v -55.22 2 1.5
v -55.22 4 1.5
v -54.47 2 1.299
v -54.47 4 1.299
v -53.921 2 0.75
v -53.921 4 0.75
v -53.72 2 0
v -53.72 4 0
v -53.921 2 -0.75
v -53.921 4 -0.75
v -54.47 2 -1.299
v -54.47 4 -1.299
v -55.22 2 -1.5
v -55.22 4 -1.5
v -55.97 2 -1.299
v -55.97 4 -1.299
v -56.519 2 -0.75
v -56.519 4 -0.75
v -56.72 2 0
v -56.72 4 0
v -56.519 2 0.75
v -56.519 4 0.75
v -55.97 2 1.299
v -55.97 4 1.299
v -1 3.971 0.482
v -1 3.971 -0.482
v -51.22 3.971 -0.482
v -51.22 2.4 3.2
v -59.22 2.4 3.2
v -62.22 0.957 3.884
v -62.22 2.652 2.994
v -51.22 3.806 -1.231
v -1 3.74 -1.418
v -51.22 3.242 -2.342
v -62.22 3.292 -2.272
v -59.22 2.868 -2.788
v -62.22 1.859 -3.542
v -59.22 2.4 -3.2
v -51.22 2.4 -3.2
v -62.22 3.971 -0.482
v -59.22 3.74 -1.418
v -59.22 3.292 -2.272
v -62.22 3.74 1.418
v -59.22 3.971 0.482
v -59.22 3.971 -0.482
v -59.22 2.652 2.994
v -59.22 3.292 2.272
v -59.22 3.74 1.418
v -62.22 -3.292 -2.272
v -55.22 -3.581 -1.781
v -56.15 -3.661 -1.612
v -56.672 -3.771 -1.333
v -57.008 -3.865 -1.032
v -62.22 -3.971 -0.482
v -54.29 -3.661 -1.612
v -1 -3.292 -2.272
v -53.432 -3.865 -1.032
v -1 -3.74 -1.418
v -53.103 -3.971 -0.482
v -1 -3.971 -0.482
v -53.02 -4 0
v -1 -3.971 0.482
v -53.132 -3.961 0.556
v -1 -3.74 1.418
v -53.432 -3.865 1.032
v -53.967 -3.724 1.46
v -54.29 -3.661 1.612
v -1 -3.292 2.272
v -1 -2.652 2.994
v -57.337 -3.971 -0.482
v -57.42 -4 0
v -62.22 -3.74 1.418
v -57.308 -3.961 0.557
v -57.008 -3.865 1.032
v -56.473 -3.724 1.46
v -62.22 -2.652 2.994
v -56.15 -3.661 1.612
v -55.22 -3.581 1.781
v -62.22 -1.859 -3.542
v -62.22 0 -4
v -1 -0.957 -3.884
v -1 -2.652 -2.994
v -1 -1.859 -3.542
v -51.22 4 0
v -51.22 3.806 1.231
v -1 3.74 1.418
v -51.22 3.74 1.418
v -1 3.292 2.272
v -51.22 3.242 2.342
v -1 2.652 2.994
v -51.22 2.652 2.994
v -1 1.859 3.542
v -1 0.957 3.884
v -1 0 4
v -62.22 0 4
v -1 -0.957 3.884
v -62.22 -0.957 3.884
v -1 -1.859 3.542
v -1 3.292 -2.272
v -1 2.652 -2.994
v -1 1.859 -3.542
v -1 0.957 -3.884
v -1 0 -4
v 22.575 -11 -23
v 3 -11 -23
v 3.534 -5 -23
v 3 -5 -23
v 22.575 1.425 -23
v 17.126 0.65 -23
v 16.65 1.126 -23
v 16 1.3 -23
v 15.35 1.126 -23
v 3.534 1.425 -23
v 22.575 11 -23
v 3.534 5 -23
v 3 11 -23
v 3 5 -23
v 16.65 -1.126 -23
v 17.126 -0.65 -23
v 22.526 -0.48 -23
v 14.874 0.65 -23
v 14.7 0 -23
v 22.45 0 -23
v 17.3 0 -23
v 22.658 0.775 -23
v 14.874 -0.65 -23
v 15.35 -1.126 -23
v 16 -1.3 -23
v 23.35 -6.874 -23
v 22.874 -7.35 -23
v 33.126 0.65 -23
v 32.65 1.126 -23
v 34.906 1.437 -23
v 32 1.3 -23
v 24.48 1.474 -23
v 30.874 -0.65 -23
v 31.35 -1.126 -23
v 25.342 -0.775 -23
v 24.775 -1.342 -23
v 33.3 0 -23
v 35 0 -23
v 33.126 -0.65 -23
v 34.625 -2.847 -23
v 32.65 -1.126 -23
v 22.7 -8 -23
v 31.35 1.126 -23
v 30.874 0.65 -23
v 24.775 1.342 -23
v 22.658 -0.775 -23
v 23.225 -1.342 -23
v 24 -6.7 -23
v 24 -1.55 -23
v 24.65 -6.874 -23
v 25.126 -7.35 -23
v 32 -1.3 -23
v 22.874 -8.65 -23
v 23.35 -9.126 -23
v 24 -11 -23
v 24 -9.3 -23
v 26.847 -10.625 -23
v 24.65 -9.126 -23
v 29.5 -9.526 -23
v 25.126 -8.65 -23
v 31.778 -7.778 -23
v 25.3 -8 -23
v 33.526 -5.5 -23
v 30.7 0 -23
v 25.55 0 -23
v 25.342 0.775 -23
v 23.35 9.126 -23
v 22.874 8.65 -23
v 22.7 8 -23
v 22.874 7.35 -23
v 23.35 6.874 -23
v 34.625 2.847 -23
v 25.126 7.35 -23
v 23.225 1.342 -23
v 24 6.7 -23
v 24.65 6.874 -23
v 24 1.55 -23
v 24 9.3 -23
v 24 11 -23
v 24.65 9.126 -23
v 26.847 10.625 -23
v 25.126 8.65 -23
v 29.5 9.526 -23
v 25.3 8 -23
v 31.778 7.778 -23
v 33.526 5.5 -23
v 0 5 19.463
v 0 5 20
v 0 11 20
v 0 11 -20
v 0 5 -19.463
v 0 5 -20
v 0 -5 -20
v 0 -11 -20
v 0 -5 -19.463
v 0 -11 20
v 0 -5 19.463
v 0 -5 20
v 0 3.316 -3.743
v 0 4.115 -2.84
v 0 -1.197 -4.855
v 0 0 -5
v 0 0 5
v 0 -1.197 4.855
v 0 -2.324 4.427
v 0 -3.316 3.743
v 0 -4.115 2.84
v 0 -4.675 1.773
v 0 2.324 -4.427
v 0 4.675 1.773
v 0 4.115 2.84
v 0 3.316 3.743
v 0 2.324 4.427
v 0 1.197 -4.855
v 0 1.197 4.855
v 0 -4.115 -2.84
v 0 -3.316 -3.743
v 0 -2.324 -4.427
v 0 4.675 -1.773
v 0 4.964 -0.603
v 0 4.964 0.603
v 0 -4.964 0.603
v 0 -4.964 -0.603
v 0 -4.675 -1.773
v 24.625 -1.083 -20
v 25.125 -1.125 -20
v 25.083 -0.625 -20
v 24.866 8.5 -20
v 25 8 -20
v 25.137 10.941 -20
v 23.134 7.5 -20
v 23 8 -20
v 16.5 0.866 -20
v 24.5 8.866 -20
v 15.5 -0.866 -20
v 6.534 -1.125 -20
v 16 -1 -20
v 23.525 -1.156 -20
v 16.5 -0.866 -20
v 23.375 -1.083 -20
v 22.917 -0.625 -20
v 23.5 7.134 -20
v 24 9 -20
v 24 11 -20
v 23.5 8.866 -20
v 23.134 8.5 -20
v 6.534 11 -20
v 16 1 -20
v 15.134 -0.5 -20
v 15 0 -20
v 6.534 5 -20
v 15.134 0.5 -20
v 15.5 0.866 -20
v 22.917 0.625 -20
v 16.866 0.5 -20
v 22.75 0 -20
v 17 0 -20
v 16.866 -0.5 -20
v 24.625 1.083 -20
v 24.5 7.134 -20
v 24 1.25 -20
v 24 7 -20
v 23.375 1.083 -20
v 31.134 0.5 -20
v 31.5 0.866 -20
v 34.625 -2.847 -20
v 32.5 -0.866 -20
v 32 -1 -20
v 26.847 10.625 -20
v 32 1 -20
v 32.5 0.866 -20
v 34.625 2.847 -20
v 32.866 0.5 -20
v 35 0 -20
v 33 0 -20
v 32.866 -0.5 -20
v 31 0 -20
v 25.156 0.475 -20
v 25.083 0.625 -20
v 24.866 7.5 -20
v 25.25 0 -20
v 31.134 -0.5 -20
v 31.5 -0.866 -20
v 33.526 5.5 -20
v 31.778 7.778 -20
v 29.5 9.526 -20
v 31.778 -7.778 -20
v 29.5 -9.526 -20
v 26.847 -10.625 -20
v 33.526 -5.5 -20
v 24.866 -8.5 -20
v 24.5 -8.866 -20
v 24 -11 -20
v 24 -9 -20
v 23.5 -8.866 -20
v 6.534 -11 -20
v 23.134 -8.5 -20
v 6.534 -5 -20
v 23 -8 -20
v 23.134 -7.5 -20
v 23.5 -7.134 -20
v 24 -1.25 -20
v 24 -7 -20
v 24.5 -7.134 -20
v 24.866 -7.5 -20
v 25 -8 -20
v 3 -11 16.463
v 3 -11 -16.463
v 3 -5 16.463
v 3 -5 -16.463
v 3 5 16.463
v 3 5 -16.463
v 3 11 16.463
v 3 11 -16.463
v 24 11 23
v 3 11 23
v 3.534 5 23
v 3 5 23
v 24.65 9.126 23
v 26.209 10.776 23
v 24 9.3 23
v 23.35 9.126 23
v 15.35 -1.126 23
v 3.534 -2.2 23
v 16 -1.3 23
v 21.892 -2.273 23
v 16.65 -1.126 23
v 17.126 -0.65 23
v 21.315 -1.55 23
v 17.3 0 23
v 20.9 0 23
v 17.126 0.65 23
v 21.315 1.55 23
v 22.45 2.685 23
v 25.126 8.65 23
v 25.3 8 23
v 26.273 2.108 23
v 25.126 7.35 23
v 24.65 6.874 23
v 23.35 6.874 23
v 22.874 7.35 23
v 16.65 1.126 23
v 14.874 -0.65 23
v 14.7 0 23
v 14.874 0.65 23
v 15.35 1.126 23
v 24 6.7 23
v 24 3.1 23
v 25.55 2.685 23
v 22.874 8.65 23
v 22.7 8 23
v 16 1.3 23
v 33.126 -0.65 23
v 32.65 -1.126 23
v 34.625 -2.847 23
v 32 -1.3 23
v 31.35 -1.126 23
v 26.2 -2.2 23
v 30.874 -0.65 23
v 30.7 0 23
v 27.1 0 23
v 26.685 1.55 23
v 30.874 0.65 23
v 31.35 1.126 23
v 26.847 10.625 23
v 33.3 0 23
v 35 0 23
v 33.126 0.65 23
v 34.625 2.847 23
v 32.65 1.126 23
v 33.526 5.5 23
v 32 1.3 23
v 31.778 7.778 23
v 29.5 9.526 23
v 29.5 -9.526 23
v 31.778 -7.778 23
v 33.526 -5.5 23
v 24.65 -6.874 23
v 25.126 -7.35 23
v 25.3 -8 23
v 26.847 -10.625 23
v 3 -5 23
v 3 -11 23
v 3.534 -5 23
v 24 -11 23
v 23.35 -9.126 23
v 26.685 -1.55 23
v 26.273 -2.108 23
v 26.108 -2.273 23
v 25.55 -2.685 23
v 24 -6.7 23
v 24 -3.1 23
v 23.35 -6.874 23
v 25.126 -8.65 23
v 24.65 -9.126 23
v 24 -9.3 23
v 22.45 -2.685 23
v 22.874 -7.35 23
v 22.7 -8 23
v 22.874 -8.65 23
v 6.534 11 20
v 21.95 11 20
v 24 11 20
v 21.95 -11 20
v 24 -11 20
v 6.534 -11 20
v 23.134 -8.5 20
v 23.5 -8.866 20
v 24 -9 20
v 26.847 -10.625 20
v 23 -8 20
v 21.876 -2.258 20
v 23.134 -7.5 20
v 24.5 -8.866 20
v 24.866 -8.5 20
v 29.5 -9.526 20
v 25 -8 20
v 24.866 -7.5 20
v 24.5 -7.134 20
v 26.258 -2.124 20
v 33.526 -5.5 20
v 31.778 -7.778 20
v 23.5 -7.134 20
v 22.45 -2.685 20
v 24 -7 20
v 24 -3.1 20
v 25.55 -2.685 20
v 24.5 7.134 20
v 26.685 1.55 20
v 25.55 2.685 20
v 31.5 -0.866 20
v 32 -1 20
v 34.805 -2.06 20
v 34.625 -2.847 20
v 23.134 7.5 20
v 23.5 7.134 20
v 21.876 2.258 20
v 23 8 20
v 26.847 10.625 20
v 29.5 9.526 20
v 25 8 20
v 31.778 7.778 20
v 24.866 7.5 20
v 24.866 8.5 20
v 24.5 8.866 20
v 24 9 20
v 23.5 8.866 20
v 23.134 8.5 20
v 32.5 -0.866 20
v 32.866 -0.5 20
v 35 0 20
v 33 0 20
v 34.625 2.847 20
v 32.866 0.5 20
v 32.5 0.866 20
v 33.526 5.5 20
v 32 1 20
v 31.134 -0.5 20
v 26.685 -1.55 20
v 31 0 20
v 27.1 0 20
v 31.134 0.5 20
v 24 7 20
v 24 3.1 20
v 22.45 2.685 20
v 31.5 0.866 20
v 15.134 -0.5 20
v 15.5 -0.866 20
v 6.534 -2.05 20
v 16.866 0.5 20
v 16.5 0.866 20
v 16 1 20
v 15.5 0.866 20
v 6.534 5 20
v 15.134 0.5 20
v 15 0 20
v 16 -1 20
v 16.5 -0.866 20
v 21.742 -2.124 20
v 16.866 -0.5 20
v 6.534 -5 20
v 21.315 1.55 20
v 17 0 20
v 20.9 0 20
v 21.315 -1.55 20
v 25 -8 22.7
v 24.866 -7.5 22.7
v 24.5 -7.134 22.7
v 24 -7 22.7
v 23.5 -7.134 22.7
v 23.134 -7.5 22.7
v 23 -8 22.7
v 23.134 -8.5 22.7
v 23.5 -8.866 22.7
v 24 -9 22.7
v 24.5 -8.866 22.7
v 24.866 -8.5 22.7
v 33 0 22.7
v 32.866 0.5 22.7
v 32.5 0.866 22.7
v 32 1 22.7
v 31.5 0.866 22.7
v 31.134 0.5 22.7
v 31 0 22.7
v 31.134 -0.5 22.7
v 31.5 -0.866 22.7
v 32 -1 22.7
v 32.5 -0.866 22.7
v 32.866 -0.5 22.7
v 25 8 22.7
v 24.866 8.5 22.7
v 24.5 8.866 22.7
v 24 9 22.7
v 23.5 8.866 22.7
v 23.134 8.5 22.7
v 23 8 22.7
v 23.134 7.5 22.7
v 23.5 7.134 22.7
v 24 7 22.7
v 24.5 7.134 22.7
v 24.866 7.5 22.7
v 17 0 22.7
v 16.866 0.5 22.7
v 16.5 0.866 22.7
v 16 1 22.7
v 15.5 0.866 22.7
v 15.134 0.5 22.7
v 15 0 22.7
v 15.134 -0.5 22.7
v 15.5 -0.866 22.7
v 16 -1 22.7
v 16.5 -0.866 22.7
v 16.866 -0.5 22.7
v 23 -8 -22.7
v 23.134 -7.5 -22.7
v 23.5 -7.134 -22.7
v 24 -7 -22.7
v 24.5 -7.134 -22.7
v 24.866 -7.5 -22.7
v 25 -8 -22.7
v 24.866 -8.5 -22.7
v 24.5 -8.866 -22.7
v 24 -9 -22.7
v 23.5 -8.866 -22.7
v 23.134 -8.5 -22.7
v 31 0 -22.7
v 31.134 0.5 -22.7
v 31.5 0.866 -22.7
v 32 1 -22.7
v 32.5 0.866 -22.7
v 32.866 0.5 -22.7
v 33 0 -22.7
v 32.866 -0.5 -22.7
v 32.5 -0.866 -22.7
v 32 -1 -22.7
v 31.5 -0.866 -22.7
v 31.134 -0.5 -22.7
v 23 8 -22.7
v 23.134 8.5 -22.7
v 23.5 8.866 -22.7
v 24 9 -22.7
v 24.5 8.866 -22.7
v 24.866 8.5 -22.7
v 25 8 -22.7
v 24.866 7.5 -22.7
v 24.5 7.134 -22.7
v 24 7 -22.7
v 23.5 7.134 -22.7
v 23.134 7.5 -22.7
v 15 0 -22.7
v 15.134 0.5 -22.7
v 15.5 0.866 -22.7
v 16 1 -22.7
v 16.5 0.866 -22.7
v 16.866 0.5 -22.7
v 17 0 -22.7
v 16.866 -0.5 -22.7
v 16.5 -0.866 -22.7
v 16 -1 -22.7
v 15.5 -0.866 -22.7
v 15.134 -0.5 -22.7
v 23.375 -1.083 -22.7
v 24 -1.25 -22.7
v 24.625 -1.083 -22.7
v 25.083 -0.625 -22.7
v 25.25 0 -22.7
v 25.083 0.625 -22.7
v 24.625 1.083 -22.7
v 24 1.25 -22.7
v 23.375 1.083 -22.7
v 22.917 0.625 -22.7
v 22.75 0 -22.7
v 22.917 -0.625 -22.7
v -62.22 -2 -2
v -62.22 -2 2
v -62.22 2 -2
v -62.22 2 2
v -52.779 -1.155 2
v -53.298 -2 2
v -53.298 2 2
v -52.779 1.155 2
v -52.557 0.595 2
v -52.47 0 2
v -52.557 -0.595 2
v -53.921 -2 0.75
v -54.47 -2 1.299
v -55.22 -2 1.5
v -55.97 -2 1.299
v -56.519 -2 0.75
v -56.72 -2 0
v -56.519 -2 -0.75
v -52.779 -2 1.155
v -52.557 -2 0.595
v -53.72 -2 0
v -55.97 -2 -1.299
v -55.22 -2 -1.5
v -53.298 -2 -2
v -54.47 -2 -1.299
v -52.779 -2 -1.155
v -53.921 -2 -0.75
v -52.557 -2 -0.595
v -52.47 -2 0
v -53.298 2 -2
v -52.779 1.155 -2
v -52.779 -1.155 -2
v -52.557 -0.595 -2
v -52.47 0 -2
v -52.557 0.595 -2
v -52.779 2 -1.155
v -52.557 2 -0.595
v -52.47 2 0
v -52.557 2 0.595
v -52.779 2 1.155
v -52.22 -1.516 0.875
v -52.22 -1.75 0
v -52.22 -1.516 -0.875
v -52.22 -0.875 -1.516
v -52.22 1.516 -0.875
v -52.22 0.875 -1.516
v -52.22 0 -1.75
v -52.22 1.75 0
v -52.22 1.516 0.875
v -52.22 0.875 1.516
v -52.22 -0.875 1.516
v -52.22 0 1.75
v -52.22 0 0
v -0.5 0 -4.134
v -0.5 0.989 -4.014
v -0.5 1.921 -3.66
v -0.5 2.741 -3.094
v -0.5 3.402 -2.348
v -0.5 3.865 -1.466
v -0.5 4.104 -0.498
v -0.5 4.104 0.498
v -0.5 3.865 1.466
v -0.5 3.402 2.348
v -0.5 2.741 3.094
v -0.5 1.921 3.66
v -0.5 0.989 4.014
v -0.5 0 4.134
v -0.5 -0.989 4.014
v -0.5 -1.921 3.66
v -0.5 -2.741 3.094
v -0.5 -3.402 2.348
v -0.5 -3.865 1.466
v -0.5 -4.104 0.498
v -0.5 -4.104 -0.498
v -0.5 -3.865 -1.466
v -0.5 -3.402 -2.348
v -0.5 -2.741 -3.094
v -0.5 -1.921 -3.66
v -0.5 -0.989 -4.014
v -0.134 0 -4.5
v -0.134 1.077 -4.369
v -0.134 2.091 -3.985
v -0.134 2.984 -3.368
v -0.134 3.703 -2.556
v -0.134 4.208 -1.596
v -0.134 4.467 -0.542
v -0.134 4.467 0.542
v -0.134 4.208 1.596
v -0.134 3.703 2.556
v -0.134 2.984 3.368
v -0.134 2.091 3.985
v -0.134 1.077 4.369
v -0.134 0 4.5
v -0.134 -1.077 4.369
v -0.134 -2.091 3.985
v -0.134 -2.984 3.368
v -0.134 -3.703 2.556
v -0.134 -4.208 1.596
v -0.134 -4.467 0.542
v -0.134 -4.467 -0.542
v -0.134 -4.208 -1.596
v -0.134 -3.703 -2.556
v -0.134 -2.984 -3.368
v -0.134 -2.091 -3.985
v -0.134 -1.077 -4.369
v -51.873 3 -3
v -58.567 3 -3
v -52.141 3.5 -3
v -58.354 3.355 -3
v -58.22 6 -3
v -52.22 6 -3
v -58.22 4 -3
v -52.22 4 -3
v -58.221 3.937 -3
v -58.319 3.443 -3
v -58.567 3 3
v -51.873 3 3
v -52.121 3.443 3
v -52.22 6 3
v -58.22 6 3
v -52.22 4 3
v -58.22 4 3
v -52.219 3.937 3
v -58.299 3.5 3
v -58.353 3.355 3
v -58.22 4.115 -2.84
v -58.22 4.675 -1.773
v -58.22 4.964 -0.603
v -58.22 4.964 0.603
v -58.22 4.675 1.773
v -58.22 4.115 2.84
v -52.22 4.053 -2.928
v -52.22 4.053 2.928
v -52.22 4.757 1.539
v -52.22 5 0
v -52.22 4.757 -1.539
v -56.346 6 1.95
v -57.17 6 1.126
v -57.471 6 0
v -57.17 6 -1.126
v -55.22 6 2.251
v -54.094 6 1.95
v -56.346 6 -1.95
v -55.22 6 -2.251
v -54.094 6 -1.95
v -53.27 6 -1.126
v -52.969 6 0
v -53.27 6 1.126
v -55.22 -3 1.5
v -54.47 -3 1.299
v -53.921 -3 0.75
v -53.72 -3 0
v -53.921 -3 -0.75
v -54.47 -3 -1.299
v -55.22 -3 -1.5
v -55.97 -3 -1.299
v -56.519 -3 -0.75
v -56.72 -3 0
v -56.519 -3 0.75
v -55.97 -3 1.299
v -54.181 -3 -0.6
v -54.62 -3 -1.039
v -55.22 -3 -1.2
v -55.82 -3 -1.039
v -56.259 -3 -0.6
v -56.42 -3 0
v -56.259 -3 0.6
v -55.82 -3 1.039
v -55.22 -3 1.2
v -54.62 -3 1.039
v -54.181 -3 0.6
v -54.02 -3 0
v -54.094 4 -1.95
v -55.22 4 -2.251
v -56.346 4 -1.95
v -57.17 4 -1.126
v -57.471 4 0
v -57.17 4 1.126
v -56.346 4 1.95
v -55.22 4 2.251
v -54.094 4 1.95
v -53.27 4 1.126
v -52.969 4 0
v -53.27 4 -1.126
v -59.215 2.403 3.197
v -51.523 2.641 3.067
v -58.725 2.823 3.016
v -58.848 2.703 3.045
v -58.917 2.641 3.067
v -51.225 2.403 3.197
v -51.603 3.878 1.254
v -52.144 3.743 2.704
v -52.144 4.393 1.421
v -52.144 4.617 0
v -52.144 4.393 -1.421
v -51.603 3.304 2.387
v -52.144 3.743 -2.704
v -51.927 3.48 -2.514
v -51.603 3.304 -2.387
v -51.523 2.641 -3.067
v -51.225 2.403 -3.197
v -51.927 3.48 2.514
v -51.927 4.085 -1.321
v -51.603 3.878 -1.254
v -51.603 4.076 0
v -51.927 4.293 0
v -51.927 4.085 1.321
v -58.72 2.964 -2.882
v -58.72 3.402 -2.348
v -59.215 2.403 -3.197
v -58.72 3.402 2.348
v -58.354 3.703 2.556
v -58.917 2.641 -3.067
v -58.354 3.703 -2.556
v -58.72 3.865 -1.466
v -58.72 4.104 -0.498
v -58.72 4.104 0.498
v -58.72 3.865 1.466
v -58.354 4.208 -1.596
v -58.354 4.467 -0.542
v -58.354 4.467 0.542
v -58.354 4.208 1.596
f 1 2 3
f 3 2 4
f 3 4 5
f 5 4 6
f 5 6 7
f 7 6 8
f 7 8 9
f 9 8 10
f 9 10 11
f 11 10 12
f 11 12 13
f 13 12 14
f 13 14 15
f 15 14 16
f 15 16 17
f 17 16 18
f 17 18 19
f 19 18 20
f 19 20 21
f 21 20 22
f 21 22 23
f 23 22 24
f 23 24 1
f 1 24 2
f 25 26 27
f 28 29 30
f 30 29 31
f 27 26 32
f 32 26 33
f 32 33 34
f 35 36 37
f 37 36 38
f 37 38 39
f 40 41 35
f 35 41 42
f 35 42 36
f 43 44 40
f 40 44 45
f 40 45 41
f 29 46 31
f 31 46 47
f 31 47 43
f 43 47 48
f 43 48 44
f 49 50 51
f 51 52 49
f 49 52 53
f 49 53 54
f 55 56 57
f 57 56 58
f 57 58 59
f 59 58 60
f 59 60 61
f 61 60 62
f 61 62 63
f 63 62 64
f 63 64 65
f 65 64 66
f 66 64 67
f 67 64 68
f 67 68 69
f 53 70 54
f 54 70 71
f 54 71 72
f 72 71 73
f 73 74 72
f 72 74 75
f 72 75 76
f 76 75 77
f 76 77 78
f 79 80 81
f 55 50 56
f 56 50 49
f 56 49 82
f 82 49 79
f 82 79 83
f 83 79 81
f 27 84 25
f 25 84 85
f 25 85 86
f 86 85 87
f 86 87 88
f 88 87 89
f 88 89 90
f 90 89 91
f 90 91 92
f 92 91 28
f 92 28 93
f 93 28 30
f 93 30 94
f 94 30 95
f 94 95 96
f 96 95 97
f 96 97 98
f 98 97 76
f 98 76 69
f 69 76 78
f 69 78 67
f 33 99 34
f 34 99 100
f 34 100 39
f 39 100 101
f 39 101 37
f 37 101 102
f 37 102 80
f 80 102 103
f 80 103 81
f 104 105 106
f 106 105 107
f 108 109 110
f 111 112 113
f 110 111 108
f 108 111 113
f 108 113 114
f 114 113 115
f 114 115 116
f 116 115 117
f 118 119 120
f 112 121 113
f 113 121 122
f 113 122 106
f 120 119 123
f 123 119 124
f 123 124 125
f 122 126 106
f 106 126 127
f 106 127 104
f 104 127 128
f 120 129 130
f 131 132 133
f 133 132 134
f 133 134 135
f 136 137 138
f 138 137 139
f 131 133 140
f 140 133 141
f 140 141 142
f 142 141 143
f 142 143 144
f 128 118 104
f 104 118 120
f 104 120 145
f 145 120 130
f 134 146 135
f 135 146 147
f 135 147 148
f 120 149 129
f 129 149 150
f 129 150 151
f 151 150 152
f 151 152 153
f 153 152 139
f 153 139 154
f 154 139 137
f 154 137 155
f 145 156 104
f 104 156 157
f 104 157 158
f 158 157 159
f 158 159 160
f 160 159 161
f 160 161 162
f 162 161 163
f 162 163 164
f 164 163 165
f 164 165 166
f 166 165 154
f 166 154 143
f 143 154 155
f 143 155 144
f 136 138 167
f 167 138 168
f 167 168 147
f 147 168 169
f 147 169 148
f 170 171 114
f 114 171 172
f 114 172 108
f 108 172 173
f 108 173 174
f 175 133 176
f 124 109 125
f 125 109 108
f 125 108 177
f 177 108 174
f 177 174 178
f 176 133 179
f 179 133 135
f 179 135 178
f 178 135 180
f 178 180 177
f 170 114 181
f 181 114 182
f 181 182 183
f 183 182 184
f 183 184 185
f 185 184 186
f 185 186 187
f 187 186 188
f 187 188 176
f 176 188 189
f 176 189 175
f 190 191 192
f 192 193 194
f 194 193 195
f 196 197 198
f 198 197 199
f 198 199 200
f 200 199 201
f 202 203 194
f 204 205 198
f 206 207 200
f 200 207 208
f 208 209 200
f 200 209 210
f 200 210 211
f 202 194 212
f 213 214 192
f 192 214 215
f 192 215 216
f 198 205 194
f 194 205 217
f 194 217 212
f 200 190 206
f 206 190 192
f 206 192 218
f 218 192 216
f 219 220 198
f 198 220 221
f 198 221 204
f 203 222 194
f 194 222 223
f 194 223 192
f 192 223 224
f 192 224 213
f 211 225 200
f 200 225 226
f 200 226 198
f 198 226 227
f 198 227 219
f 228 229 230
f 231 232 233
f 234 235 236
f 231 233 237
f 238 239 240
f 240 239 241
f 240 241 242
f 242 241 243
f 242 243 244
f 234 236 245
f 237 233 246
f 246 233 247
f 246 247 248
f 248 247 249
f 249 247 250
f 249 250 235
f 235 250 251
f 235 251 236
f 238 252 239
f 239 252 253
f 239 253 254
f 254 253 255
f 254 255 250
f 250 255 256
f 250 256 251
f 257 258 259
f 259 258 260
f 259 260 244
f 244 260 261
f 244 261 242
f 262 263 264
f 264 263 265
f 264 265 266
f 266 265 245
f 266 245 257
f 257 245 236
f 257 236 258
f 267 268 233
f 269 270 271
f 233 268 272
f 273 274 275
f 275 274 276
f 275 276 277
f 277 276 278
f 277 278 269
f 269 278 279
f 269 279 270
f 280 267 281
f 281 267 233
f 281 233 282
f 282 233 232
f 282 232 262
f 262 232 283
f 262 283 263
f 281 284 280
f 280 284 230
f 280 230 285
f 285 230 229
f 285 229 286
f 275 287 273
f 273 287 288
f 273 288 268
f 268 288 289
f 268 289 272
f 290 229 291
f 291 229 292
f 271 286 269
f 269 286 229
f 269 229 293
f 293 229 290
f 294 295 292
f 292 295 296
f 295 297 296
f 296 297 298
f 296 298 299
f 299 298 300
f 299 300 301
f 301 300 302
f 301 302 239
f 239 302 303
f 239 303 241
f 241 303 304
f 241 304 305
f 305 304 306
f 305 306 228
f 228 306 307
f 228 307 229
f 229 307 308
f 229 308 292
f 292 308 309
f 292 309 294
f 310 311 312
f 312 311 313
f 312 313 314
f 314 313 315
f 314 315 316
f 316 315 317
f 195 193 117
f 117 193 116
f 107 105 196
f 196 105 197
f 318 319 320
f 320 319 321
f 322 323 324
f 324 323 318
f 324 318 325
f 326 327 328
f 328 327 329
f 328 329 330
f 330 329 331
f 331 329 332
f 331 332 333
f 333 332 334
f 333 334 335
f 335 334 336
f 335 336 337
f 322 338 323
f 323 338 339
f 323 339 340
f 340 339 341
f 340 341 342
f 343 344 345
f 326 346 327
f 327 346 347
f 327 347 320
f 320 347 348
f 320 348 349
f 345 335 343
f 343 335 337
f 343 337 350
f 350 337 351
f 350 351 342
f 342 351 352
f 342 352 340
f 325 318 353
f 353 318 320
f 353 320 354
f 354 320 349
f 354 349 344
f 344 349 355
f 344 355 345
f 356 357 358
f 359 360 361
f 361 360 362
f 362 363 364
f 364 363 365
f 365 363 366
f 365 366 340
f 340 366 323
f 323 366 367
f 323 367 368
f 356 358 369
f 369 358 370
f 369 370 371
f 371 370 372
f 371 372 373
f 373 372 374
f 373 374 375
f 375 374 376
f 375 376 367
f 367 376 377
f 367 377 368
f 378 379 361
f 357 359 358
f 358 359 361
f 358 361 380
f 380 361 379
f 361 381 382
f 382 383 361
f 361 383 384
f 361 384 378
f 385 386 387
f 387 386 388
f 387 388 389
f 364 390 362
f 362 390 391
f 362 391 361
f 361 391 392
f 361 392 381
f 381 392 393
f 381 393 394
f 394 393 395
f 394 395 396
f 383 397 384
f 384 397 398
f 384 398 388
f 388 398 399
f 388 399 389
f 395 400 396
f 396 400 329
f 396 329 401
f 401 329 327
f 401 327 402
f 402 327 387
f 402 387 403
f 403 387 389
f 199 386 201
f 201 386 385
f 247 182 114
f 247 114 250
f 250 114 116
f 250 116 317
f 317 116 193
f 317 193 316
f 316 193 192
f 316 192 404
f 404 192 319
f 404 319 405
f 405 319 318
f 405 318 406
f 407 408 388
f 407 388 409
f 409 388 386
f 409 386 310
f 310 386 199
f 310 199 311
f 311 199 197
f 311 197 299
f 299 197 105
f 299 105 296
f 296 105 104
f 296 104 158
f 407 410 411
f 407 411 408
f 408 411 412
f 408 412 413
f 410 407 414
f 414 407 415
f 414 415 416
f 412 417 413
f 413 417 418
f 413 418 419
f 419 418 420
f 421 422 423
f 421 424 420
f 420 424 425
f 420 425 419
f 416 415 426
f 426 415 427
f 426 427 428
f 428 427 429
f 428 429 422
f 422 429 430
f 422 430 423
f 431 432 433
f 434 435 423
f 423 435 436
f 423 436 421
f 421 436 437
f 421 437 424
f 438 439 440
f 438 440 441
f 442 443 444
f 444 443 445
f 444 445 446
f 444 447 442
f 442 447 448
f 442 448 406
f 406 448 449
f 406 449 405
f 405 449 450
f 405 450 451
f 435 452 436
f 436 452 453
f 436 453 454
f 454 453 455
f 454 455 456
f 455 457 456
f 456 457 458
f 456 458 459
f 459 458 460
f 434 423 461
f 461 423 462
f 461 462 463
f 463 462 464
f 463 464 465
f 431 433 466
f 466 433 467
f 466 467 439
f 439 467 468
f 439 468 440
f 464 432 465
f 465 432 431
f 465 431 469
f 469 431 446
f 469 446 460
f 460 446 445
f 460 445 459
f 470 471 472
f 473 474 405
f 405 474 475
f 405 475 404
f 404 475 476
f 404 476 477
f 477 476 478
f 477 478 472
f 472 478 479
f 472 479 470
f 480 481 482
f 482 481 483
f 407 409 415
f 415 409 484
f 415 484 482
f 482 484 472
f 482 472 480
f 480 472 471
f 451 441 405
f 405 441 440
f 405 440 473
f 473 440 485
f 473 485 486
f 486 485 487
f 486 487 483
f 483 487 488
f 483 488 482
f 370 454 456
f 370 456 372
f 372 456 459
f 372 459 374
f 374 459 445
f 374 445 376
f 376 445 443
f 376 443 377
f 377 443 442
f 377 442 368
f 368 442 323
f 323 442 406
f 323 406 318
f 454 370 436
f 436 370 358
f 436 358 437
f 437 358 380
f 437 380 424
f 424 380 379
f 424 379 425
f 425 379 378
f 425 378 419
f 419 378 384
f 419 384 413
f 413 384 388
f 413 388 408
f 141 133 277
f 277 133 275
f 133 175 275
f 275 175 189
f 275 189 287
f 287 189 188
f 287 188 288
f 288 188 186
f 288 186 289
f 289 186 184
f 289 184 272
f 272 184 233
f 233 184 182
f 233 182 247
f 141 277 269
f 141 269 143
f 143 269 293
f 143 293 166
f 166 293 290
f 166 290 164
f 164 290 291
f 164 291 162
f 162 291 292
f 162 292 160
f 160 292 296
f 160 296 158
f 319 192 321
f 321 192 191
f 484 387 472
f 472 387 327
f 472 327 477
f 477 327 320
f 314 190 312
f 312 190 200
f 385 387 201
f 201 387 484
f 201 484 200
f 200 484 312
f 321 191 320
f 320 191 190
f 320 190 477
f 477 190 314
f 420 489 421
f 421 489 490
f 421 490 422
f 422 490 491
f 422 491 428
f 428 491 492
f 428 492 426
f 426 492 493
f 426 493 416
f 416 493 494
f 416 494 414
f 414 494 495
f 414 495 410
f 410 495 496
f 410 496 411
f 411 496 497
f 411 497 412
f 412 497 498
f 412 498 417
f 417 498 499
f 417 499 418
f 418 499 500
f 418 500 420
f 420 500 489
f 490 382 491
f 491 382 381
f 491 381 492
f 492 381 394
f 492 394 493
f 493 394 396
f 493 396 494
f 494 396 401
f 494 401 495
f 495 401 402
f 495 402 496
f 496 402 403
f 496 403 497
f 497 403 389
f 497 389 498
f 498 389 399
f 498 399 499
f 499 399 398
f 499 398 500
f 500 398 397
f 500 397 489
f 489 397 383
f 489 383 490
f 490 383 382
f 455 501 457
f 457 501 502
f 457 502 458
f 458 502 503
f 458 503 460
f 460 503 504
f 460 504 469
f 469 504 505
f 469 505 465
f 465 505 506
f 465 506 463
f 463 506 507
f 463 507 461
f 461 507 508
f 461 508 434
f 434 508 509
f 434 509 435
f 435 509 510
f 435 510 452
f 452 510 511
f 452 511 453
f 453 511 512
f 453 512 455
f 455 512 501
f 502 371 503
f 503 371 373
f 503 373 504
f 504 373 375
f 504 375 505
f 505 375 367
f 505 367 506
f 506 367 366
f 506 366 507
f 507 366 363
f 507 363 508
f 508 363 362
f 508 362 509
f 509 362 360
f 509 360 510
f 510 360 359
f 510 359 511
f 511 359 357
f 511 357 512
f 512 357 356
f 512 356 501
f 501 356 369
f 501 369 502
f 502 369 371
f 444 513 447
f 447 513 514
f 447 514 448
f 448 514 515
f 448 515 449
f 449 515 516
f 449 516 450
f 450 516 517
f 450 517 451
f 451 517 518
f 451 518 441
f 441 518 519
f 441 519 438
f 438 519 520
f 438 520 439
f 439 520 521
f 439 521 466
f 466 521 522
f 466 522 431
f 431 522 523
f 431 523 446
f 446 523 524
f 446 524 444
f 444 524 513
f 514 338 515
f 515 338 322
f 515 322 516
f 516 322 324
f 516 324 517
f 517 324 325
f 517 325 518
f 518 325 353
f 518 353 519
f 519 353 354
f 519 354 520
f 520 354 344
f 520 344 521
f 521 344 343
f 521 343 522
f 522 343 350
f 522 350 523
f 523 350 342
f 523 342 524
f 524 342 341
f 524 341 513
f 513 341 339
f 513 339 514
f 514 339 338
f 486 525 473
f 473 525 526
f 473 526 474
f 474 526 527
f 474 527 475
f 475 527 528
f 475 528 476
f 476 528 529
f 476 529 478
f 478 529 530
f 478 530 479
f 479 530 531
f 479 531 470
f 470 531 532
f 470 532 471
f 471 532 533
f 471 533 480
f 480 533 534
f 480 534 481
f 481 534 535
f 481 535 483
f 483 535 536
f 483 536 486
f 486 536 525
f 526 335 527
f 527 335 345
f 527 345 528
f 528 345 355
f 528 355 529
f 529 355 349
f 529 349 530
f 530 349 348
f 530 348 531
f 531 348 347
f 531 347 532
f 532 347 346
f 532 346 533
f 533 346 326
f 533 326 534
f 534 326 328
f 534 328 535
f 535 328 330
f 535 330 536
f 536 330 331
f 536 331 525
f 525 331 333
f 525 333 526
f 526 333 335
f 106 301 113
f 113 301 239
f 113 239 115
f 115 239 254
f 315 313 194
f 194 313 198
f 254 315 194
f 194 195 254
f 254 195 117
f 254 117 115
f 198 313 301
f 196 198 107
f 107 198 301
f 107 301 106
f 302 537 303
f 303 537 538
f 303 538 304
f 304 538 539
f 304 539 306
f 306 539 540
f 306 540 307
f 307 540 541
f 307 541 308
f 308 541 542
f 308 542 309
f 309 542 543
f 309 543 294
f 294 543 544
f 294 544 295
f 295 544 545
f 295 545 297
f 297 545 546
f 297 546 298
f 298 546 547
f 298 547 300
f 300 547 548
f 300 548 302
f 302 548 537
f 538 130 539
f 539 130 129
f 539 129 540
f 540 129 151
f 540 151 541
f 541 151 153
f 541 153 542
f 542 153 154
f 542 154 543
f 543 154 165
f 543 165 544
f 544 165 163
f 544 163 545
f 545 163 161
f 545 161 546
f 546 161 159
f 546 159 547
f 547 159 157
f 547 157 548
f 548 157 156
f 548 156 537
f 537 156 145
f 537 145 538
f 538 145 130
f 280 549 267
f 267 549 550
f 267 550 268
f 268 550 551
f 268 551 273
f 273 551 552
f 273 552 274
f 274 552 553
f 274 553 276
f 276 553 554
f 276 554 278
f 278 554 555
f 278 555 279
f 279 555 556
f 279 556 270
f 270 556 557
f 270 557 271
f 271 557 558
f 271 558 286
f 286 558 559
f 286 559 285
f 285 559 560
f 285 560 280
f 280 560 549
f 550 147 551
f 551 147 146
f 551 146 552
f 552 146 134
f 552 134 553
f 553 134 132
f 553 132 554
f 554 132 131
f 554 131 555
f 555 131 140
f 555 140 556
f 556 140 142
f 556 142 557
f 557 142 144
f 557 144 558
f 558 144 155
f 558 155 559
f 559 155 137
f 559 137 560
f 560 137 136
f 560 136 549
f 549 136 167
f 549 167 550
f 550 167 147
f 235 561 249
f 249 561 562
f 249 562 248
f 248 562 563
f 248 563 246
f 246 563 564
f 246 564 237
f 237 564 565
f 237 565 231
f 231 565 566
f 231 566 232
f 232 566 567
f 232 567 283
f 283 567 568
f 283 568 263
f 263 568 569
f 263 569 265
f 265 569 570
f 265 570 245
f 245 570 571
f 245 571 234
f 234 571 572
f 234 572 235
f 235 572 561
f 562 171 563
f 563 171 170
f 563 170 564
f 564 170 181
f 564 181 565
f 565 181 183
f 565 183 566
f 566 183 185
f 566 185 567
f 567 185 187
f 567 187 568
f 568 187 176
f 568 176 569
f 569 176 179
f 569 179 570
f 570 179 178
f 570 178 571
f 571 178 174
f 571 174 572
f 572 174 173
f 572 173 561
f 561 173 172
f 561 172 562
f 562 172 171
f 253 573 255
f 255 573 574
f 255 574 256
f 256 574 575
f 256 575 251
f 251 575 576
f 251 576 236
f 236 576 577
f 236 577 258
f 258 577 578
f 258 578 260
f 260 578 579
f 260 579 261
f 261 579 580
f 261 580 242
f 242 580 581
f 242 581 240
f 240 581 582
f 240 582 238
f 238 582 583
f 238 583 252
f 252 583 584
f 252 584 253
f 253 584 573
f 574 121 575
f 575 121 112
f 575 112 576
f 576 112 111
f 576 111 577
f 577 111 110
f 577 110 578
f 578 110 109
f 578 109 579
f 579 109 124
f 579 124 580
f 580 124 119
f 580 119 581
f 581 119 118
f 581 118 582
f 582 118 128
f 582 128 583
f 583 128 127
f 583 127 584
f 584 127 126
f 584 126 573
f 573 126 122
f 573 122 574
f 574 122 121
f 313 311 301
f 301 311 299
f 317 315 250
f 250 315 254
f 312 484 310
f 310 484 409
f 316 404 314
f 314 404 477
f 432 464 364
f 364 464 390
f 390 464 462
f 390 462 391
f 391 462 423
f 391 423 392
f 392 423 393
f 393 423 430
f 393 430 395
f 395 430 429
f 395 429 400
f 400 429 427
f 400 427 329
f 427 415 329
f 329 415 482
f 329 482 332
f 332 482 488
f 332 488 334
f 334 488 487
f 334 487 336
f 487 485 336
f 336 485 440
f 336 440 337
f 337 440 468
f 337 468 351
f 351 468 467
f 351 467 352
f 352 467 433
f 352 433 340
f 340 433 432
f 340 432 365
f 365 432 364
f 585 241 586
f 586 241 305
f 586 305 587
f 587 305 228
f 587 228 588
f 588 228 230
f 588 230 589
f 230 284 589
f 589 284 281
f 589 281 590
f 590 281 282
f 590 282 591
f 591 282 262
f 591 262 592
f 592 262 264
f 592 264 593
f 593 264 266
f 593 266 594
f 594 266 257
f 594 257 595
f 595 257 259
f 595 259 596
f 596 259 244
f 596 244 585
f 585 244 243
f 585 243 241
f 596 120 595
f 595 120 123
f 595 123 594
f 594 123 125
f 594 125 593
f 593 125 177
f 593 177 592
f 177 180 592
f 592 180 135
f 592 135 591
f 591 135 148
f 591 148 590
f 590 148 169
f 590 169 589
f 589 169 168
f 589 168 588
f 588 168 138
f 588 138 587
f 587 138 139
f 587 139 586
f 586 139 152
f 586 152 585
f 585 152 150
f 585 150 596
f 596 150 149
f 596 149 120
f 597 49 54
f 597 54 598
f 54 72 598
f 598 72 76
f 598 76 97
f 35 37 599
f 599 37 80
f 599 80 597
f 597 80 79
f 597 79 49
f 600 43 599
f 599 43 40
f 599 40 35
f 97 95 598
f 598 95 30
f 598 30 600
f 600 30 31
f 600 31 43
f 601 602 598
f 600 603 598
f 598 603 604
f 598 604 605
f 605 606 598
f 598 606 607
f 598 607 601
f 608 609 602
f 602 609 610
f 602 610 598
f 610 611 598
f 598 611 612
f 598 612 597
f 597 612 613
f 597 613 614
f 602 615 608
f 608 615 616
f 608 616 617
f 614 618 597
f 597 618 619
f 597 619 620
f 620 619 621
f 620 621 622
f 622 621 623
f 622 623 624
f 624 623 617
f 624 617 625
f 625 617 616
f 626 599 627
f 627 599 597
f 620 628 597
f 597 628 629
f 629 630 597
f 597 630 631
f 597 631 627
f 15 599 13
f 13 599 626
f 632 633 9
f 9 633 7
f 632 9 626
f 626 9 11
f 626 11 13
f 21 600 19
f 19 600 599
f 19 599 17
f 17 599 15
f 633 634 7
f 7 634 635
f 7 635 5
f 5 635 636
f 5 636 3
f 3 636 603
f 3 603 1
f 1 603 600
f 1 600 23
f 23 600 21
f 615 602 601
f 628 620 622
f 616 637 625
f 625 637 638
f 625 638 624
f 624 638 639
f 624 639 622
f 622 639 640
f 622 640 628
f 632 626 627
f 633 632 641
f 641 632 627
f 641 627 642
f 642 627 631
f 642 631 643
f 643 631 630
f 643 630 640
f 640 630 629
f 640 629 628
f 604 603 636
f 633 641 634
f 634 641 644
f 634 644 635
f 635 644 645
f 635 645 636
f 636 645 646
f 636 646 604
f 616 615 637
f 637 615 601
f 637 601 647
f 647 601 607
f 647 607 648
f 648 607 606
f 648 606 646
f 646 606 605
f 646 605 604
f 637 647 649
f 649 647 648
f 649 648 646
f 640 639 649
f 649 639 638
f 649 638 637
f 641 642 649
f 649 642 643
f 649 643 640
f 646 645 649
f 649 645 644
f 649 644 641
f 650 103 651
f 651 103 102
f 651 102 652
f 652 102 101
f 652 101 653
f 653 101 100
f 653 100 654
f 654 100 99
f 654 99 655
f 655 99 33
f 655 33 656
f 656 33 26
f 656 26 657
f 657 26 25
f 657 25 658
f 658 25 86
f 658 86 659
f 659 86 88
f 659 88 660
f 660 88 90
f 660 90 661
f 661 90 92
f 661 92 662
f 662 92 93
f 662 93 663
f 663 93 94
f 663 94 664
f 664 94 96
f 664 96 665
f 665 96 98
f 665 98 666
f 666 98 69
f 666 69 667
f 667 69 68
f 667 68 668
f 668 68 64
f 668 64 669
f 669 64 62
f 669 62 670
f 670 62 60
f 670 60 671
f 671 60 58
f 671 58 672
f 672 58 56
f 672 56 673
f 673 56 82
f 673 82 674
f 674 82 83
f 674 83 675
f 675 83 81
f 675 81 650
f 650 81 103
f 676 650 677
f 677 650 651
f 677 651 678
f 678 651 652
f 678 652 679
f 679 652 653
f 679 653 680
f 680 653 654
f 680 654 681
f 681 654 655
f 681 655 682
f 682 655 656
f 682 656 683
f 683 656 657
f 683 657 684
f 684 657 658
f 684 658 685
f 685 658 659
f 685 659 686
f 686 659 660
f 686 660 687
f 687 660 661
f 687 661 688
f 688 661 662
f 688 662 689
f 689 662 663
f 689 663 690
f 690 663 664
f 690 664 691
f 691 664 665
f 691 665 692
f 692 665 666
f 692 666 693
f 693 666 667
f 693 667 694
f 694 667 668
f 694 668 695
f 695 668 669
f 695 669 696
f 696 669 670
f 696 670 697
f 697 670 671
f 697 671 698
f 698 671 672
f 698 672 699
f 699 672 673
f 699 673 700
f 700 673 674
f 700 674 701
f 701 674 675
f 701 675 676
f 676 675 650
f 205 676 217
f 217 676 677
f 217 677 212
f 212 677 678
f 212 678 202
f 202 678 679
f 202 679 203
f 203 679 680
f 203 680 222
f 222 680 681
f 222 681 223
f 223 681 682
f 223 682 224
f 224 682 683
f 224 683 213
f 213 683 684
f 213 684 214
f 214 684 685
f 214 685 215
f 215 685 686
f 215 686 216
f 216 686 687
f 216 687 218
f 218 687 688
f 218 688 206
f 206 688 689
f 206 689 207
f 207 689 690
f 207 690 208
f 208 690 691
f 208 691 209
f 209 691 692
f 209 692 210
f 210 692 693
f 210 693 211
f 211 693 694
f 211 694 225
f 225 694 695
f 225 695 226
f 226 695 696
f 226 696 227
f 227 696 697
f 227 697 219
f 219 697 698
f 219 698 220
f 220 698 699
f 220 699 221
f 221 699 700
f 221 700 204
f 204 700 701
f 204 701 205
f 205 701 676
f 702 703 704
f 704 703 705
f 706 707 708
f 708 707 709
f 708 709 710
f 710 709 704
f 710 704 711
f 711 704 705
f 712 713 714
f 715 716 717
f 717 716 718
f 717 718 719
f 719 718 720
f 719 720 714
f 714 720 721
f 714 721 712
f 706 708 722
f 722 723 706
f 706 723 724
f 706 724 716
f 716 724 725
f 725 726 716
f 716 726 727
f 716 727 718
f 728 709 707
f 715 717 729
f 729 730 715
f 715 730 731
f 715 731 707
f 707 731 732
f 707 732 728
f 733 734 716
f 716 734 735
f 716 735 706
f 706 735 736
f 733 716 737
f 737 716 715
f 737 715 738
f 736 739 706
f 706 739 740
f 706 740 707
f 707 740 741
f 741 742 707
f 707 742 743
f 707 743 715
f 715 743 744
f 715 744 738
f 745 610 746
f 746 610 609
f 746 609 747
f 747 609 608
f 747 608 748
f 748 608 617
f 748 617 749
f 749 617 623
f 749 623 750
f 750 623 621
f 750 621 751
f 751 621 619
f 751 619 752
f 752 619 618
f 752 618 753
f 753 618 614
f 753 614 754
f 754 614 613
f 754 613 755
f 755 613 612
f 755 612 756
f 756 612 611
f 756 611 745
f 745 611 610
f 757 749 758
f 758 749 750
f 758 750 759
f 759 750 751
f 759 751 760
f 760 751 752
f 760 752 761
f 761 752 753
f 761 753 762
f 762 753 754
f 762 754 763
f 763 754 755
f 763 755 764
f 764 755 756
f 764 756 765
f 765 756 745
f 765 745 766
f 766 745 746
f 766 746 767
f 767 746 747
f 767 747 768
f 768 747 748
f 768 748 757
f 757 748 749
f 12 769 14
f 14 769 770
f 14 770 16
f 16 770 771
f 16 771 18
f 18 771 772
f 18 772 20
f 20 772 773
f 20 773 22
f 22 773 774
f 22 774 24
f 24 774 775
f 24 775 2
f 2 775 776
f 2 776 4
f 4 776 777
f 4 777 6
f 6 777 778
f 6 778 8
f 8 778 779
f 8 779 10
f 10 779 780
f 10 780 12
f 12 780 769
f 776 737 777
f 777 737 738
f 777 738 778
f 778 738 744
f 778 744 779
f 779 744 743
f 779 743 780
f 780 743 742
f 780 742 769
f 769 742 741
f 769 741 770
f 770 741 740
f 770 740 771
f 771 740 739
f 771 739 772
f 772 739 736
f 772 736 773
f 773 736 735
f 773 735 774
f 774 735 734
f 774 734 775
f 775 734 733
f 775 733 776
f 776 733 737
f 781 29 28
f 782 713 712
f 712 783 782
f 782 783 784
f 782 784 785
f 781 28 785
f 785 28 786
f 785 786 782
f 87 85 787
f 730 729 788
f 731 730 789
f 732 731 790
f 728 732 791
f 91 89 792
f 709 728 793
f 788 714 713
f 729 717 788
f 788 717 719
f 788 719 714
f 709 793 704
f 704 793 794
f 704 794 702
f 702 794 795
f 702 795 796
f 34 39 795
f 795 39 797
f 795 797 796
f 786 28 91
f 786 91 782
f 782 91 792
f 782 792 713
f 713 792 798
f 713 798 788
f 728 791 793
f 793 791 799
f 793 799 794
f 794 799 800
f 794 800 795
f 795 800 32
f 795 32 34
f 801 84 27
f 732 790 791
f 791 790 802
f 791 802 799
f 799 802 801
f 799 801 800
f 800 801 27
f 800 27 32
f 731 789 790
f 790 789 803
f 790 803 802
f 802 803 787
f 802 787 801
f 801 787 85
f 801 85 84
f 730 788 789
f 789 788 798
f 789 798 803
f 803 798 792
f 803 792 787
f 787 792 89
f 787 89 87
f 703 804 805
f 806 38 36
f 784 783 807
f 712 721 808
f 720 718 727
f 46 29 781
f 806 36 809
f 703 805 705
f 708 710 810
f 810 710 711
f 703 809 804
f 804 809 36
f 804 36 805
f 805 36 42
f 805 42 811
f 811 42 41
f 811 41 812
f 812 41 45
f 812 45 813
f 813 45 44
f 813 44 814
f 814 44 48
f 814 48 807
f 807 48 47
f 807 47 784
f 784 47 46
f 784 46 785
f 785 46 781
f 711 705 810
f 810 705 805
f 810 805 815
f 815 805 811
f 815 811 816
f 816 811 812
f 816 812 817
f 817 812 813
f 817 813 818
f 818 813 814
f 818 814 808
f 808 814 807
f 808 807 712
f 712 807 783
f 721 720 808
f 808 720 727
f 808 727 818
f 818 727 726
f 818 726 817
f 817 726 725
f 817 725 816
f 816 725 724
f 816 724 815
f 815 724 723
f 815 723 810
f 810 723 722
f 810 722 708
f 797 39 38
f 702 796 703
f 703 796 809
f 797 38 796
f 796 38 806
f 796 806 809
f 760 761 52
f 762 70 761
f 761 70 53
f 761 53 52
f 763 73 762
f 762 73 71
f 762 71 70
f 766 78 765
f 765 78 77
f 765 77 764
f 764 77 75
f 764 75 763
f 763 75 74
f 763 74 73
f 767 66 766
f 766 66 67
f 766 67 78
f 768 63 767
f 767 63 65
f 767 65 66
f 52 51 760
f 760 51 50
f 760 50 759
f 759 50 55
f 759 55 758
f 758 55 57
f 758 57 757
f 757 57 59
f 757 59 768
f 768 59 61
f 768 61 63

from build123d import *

# Parameters (mm, degrees)
IZIM1_W                                        = 46
IZIM1_H                                        = 22
Y_KSEKLIK_EKSTR_ZYON1_DEPTH                    = 35
IZIM2_W                                        = 40
IZIM2_H                                        = 22
KES_EKSTR_ZYON1_DEPTH                          = 32
RADYUS1_R                                      = 11
PAH1_SIZE                                      = 3
IZIM3_W                                        = 5
IZIM3_H                                        = 10
KES_EKSTR_ZYON2_DEPTH                          = 20
FEDER5_REACH                                   = 46.833
IZIM8_WALL_W                                   = 96.666047784
IZIM8_WALL_H                                   = 6
AYNALAMA4_COPY_1_REACH                         = 46.833
AYNALAMA4_COPY_1_SKETCH_W                      = 96.666047784
AYNALAMA4_COPY_1_SKETCH_H                      = 6
IZIM10_R                                       = 3.1
KES_EKSTR_ZYON4_DEPTH                          = 59.838762733
IZIM12_R                                       = 3.1
Y_KSEKLIK_EKSTR_ZYON3_DEPTH                    = 3
M3_D_Z_BA_L_MAKINE_VIDAS_IN_HAV_A1_D           = 2.5
M3_D_Z_BA_L_MAKINE_VIDAS_IN_HAV_A1_CSINK_D     = 3.1
M3_D_Z_BA_L_MAKINE_VIDAS_IN_HAV_A1_CSINK_ANGLE = 90
IZIM18_R                                       = 4
Y_KSEKLIK_EKSTR_ZYON4_DEPTH                    = 62.22
IZIM19_W                                       = 4
IZIM19_H                                       = 4
KES_EKSTR_ZYON5_DEPTH                          = 10
RADYUS2_R                                      = 1
Y_KSEKLIK_EKSTR_ZYON5_DEPTH                    = 2
Y_KSEKLIK_EKSTR_ZYON5_DEPTH_BACK               = 2
IZIM21_W                                       = 6
IZIM21_H                                       = 6
IZIM22_R                                       = 1.5
KES_EKSTR_ZYON6_DEPTH                          = 9
IZIM23_R                                       = 2.251355404
KES_EKSTR_ZYON7_DEPTH                          = 2
RADYUS3_R                                      = 1
M2_D_Z_BA_L_MAKINE_VIDAS_IN_HAV_A2_D           = 2
M2_D_Z_BA_L_MAKINE_VIDAS_IN_HAV_A2_DEPTH       = 46
M2_D_Z_BA_L_MAKINE_VIDAS_IN_HAV_A2_CSINK_D     = 4.4
M2_D_Z_BA_L_MAKINE_VIDAS_IN_HAV_A2_CSINK_ANGLE = 90
M2_D_Z_BA_L_MAKINE_VIDAS_IN_HAV_A2_TIP         = 0.600860619


# Read off the part's stored shape, not the designer's step: M2 Düz Başlı Makine Vidası İçin Havşa1
with BuildPart() as part:
    # Çizim1 → Yükseklik-Ekstrüzyon1 (new body)
    with BuildSketch(Plane(origin=(0, 0, 0), x_dir=(0, 0, -1), z_dir=(1, 0, 0))):
        Rectangle(IZIM1_W, IZIM1_H)
    extrude(amount=Y_KSEKLIK_EKSTR_ZYON1_DEPTH)

    # Çizim2 → Kes-Ekstrüzyon1 (cut)
    with BuildSketch(Plane(origin=(35, 0, 0), x_dir=(0, 0, -1), z_dir=(1, 0, 0))):
        Rectangle(IZIM2_W, IZIM2_H)
    extrude(amount=-KES_EKSTR_ZYON1_DEPTH, mode=Mode.SUBTRACT)

    # Radyus1
    radyus1_edges = [part.edges().sort_by_distance(p)[0] for p in [
        (35, -11, 21.5),
        (35, 11, 21.5),
        (35, -11, -21.5),
        (35, 11, -21.5),
    ]]
    fillet(radyus1_edges, radius=RADYUS1_R - 0.0001)  # a hair under: the kernel refuses the full size

    # Pah1
    pah1_edges = [part.edges().sort_by_distance(p)[0] for p in [
        (0, 0, 23),
        (0, 0, -23),
    ]]
    chamfer(pah1_edges, length=PAH1_SIZE)

    # Çizim3 → Kes-Ekstrüzyon2 (cut)
    with BuildSketch(Plane(origin=(-10, 0, 10), x_dir=(0.7071067811865468, 0, 0.7071067811865483), z_dir=(-0.7071067811865483, 0, 0.7071067811865468))):
        with Locations((16.262135624, 0)):
            Rectangle(IZIM3_W, IZIM3_H)
    kes_ekstr_zyon2 = extrude(amount=-KES_EKSTR_ZYON2_DEPTH, mode=Mode.SUBTRACT)

    # M2 Düz Başlı Makine Vidası İçin Havşa1 ou → M2 Düz Başlı Makine Vidası İçin Havşa1 (revolve, cut)
    with BuildSketch(Plane(origin=(24, -8, 0), x_dir=(1, 0, 0), z_dir=(0, -1, 0))):
        Polygon((0, 20), (1, 20), (1, 22.7), (1.3, 23), (0, 23), align=None)
    m2_d_z_ba_l_makine_vidas_in_hav_a1 = revolve(axis=Axis((24, -8, 0), (0, 0, 1)), mode=Mode.SUBTRACT)

    # M2 D_z Ba_l_ Makine Vidas_ _in Hav_a 2 → M2 D_z Ba_l_ Makine Vidas_ _in Hav_a1 2 (revolve, cut)
    with BuildSketch(Plane(origin=(32, 0, 0), x_dir=(1, 0, 0), z_dir=(0, -1, 0))):
        Polygon((0, 20), (1, 20), (1, 22.7), (1.3, 23), (0, 23), align=None)
    m2_d_z_ba_l_makine_vidas_in_hav_a1_2 = revolve(axis=Axis((32, 0, 0), (0, 0, 1)), mode=Mode.SUBTRACT)

    # M2 D_z Ba_l_ Makine Vidas_ _in Hav_a 3 → M2 D_z Ba_l_ Makine Vidas_ _in Hav_a1 3 (revolve, cut)
    with BuildSketch(Plane(origin=(24, 8, 0), x_dir=(1, 0, 0), z_dir=(0, -1, 0))):
        Polygon((0, 20), (1, 20), (1, 22.7), (1.3, 23), (0, 23), align=None)
    m2_d_z_ba_l_makine_vidas_in_hav_a1_3 = revolve(axis=Axis((24, 8, 0), (0, 0, 1)), mode=Mode.SUBTRACT)

    # M2 D_z Ba_l_ Makine Vidas_ _in Hav_a 4 → M2 D_z Ba_l_ Makine Vidas_ _in Hav_a1 4 (revolve, cut)
    with BuildSketch(Plane(origin=(16, 0, 0), x_dir=(1, 0, 0), z_dir=(0, -1, 0))):
        Polygon((0, 20), (1, 20), (1, 22.7), (1.3, 23), (0, 23), align=None)
    m2_d_z_ba_l_makine_vidas_in_hav_a1_4 = revolve(axis=Axis((16, 0, 0), (0, 0, 1)), mode=Mode.SUBTRACT)

    # Aynalama2: Kes-Ekstrüzyon2, M2 Düz Başlı Makine Vidası İçin Havşa1, M2 D_z Ba_l_ Makine Vidas_ _in Hav_a1 2, M2 D_z Ba_l_ Makine Vidas_ _in Hav_a1 3, M2 D_z Ba_l_ Makine Vidas_ _in Hav_a1 4 across plane
    add(kes_ekstr_zyon2.mirror(Plane.XY), mode=Mode.SUBTRACT)
    add(m2_d_z_ba_l_makine_vidas_in_hav_a1.mirror(Plane.XY), mode=Mode.SUBTRACT)
    add(m2_d_z_ba_l_makine_vidas_in_hav_a1_2.mirror(Plane.XY), mode=Mode.SUBTRACT)
    add(m2_d_z_ba_l_makine_vidas_in_hav_a1_3.mirror(Plane.XY), mode=Mode.SUBTRACT)
    add(m2_d_z_ba_l_makine_vidas_in_hav_a1_4.mirror(Plane.XY), mode=Mode.SUBTRACT)

    # Çizim8 wall → Feder5 (add, up to next)
    with BuildSketch(Plane(origin=(4.766833329, -5, -18.231299423), x_dir=(-0.706733233022, 0, 0.707480132118), z_dir=(0.707480132118, 0, 0.706733233022)), mode=Mode.PRIVATE) as feder5_sk1:
        with Locations((0, 3)):
            Rectangle(IZIM8_WALL_W, IZIM8_WALL_H)
    feder5_tool1 = extrude(feder5_sk1.sketch, amount=-FEDER5_REACH, mode=Mode.PRIVATE) - part.part
    feder5 = feder5_tool1.solids().sort_by_distance((4.766833329, -5, -18.231299423))[0]
    add(feder5)

    # Aynalama3: Feder5 across plane
    add(feder5.mirror(Plane.ZX))

    # Aynalama4: Feder5 across plane
    add(feder5.mirror(Plane.XY))

    # Aynalama4 copy 1 sketch → Aynalama4 copy 1 (add, up to next)
    with BuildSketch(Plane(origin=(4.766833329, 5, 18.231299423), x_dir=(-0.706733233022, 0, -0.707480132118), z_dir=(0.707480132118, 0, -0.706733233022)), mode=Mode.PRIVATE) as aynalama4_copy_1_sk1:
        with Locations((0, 3)):
            Rectangle(AYNALAMA4_COPY_1_SKETCH_W, AYNALAMA4_COPY_1_SKETCH_H)
    aynalama4_copy_1_tool1 = extrude(aynalama4_copy_1_sk1.sketch, amount=-AYNALAMA4_COPY_1_REACH, mode=Mode.PRIVATE) - part.part
    add(aynalama4_copy_1_tool1.solids().sort_by_distance((4.766833329, 5, 18.231299423))[0])

    # Çizim10 → Kes-Ekstrüzyon4 (cut, through all)
    with BuildSketch(Plane(origin=(0, 0, -23), x_dir=(-1, 0, 0), z_dir=(0, 0, -1))):
        with Locations(Location((-24, 0, 0), (0, 0, 90))):
            Circle(IZIM10_R)
    extrude(amount=-KES_EKSTR_ZYON4_DEPTH, mode=Mode.SUBTRACT)

    # Çizim12 → Yükseklik-Ekstrüzyon3 (add)
    with BuildSketch(Plane(origin=(0, 0, -23), x_dir=(-1, 0, 0), z_dir=(0, 0, -1))):
        with Locations(Location((-24, 0, 0), (0, 0, 90))):
            Circle(IZIM12_R)
    extrude(amount=-Y_KSEKLIK_EKSTR_ZYON3_DEPTH)

    # M3 Düz Başlı Makine Vidası İçin Havşa1 (through all)
    with Locations(Plane(origin=(24, 0, -23), x_dir=(0, -1, 0), z_dir=(0, 0, -1))):
        with Locations((0, 0)):
            CounterSinkHole(M3_D_Z_BA_L_MAKINE_VIDAS_IN_HAV_A1_D / 2, M3_D_Z_BA_L_MAKINE_VIDAS_IN_HAV_A1_CSINK_D / 2, counter_sink_angle=M3_D_Z_BA_L_MAKINE_VIDAS_IN_HAV_A1_CSINK_ANGLE)

    # Çizim18 → Yükseklik-Ekstrüzyon4 (add)
    with BuildSketch(Plane.ZY):
        with Locations(Location((0, 0, 0), (0, 0, 180))):
            Circle(IZIM18_R)
    extrude(amount=Y_KSEKLIK_EKSTR_ZYON4_DEPTH)

    # Çizim19 → Kes-Ekstrüzyon5 (cut)
    with BuildSketch(Plane.ZY.offset(62.22)):
        Rectangle(IZIM19_W, IZIM19_H)
    extrude(amount=-KES_EKSTR_ZYON5_DEPTH, mode=Mode.SUBTRACT)

    # Çizim20 → Döndür1 (revolve)
    with BuildSketch(Plane.XY, mode=Mode.PRIVATE) as d_nd_r1_sk:
        Polygon((-52.22, -1.75), (-52.22, -3.5), (-53.97, -3.5), align=None)
    revolve(d_nd_r1_sk.sketch.rotate(Axis((-62.22, 0, 0), (1, 0, 0)), 270), axis=Axis((-62.22, 0, 0), (1, 0, 0)))

    # Radyus2
    radyus2_edges = [part.edges().sort_by_distance(p)[0] for p in [
        (0, 0, 4),
    ]]
    fillet(radyus2_edges, radius=RADYUS2_R)

    # Çizim21 → Yükseklik-Ekstrüzyon5 (add, two sides: drawn at the far end of the back side and taken through both)
    with BuildSketch(Plane(origin=(0, 4, 0), x_dir=(1, 0, 0), z_dir=(0, 1, 0)).offset(-Y_KSEKLIK_EKSTR_ZYON5_DEPTH_BACK)):
        with Locations((-55.22, 0)):
            Rectangle(IZIM21_W, IZIM21_H)
    extrude(amount=Y_KSEKLIK_EKSTR_ZYON5_DEPTH + Y_KSEKLIK_EKSTR_ZYON5_DEPTH_BACK)

    # Çizim22 → Kes-Ekstrüzyon6 (cut)
    with BuildSketch(Plane(origin=(0, 6, 0), x_dir=(1, 0, 0), z_dir=(0, 1, 0))):
        with Locations(Location((-55.22, 0, 0), (0, 0, 270))):
            Circle(IZIM22_R)
    extrude(amount=-KES_EKSTR_ZYON6_DEPTH, mode=Mode.SUBTRACT)

    # Çizim23 → Kes-Ekstrüzyon7 (cut)
    with BuildSketch(Plane(origin=(0, 6, 0), x_dir=(1, 0, 0), z_dir=(0, 1, 0))):
        with Locations(Location((-55.22, 0, 0), (0, 0, 270))):
            Circle(IZIM23_R)
    extrude(amount=-KES_EKSTR_ZYON7_DEPTH, mode=Mode.SUBTRACT)

    # Radyus3
    radyus3_edges = [part.edges().sort_by_distance(p)[0] for p in [
        (-55.22, 2.645751311, 3),
        (-55.22, 2.645751311, -3),
        (-52.22, 4, 0),
        (-58.22, 4, 0),
    ]]
    fillet(radyus3_edges, radius=RADYUS3_R)

    # M2 Düz Başlı Makine Vidası İçin Havşa2
    with Locations(Plane.XZ.offset(4)):
        with Locations((-55.22, 0)):
            CounterSinkHole(M2_D_Z_BA_L_MAKINE_VIDAS_IN_HAV_A2_D / 2, M2_D_Z_BA_L_MAKINE_VIDAS_IN_HAV_A2_CSINK_D / 2, depth=M2_D_Z_BA_L_MAKINE_VIDAS_IN_HAV_A2_DEPTH, counter_sink_angle=M2_D_Z_BA_L_MAKINE_VIDAS_IN_HAV_A2_CSINK_ANGLE)
            with Locations((0, 0, -(M2_D_Z_BA_L_MAKINE_VIDAS_IN_HAV_A2_DEPTH + M2_D_Z_BA_L_MAKINE_VIDAS_IN_HAV_A2_TIP / 2))):  # 118° drill point
                Cone(0, M2_D_Z_BA_L_MAKINE_VIDAS_IN_HAV_A2_D / 2, M2_D_Z_BA_L_MAKINE_VIDAS_IN_HAV_A2_TIP, mode=Mode.SUBTRACT)


solid = part.part
